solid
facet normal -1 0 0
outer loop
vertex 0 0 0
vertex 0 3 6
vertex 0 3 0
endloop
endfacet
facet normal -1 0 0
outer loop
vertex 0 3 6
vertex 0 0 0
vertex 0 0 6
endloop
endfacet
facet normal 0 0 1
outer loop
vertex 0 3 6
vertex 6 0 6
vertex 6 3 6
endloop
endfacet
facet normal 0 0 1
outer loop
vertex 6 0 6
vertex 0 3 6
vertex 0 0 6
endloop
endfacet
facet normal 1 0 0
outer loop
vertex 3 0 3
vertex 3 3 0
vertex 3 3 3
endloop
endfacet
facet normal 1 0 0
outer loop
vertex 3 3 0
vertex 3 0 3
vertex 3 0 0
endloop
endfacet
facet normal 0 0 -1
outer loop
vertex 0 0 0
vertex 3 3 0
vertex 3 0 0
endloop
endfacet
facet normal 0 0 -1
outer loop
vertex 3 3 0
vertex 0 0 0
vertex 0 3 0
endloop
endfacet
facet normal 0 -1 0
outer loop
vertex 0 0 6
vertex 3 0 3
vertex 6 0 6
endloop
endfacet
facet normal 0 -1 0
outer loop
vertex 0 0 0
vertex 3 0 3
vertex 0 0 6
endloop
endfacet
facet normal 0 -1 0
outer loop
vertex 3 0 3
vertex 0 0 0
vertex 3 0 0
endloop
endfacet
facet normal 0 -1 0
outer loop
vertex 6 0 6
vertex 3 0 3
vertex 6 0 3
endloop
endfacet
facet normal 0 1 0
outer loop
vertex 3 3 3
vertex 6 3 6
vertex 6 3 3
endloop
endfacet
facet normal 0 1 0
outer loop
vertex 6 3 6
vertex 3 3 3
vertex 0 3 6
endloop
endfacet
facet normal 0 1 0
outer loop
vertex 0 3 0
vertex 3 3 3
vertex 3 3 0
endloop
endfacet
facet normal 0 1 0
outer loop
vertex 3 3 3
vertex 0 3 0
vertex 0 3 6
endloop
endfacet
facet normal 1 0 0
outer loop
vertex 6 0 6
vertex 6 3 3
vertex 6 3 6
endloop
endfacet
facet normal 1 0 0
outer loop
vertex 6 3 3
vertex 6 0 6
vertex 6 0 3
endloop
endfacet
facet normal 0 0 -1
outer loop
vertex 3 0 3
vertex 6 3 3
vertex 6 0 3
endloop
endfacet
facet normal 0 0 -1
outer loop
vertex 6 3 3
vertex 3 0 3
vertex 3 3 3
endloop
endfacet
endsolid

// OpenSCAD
module bausteinl(){
    union(){
        cube([3,3,6]);
        translate([3,0,3])
            cube([3,3,3]);
        }
}
bausteinl();
